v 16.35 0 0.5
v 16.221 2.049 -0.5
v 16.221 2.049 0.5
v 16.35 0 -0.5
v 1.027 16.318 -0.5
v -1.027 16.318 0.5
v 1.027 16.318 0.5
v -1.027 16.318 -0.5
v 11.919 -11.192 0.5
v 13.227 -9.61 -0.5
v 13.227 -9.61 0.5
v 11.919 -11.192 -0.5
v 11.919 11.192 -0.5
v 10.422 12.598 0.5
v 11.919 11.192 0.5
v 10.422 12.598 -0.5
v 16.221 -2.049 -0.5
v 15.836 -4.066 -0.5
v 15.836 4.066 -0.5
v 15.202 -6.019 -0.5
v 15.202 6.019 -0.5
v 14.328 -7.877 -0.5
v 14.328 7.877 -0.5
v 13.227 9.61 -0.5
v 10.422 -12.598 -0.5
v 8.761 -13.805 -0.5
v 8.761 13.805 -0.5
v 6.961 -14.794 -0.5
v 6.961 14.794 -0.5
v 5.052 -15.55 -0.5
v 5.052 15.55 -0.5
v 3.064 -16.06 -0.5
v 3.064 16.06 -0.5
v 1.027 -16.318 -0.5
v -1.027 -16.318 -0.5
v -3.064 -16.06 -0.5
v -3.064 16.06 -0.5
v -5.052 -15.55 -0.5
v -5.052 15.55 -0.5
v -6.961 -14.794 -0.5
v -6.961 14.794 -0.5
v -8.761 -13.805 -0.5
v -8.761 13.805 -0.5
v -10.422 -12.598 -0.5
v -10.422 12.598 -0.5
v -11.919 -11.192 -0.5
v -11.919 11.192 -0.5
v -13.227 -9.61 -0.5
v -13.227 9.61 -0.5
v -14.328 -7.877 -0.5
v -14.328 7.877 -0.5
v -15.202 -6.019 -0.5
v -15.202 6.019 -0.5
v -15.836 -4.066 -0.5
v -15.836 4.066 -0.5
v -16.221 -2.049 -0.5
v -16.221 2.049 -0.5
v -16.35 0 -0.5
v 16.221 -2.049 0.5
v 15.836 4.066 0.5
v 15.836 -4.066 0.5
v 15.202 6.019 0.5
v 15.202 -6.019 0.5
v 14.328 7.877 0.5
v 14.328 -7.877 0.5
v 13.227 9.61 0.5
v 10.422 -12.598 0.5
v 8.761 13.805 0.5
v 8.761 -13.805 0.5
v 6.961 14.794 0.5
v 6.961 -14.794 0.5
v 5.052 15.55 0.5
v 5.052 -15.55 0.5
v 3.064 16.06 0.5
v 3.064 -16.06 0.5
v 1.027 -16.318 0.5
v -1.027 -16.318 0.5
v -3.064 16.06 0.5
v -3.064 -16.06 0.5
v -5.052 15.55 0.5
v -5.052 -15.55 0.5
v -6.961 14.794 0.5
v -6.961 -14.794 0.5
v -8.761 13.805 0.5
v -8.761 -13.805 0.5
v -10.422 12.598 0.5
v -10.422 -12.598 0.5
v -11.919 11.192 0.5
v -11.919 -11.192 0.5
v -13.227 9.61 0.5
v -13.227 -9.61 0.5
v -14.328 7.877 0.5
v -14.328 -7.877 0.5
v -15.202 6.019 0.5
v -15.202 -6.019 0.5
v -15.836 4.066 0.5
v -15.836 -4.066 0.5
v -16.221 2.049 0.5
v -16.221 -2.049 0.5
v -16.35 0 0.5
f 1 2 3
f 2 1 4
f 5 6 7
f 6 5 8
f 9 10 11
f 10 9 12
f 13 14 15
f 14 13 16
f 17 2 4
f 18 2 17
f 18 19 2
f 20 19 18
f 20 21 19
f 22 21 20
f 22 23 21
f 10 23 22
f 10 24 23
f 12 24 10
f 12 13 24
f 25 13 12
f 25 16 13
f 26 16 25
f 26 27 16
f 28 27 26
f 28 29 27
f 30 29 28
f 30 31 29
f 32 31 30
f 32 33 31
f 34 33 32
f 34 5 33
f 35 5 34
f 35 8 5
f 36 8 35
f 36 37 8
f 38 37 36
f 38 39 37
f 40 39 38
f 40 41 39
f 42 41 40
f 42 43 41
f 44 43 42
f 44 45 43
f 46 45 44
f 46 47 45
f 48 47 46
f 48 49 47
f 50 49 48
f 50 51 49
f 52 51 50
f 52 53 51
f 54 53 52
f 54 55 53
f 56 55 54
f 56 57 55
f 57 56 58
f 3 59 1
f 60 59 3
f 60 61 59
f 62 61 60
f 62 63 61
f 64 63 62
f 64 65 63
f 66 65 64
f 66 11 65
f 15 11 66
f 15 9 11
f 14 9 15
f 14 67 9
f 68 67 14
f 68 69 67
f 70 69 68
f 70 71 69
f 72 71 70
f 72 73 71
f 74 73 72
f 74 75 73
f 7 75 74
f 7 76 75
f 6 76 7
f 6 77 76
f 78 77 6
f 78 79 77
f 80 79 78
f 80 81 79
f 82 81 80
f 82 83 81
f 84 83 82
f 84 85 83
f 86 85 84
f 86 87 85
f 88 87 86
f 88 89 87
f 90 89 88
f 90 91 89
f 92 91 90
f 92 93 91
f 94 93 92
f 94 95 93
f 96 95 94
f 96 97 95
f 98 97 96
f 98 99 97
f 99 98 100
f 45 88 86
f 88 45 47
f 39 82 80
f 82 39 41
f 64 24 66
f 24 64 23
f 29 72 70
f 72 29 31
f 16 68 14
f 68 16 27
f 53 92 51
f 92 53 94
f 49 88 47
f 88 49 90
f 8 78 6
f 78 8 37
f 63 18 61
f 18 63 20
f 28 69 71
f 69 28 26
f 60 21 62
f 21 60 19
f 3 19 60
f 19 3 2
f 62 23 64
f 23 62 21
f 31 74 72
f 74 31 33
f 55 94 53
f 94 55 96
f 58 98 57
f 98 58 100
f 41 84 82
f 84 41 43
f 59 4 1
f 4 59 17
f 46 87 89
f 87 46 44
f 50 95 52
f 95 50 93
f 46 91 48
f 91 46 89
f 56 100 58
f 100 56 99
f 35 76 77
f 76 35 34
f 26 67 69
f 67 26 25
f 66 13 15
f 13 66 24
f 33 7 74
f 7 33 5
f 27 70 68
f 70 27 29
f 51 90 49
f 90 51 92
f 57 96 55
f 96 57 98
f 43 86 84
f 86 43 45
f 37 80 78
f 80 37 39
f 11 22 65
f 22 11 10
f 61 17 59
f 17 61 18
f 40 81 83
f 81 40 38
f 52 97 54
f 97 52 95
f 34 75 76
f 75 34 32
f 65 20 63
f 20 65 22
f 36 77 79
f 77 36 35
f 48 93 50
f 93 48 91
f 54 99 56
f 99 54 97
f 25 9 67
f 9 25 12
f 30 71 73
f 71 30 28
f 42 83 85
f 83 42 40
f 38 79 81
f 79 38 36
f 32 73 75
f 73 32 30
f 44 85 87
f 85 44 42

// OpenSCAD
$fn = 50;


difference() {
	union() {
		translate(v = [0, 0, -0.5000000000]) {
			cylinder(h = 1, r = 16.3500000000);
		}
	}
	union() {
		translate(v = [0, 0, -100.0000000000]) {
			cylinder(h = 200, r = 0);
		}
	}
}
